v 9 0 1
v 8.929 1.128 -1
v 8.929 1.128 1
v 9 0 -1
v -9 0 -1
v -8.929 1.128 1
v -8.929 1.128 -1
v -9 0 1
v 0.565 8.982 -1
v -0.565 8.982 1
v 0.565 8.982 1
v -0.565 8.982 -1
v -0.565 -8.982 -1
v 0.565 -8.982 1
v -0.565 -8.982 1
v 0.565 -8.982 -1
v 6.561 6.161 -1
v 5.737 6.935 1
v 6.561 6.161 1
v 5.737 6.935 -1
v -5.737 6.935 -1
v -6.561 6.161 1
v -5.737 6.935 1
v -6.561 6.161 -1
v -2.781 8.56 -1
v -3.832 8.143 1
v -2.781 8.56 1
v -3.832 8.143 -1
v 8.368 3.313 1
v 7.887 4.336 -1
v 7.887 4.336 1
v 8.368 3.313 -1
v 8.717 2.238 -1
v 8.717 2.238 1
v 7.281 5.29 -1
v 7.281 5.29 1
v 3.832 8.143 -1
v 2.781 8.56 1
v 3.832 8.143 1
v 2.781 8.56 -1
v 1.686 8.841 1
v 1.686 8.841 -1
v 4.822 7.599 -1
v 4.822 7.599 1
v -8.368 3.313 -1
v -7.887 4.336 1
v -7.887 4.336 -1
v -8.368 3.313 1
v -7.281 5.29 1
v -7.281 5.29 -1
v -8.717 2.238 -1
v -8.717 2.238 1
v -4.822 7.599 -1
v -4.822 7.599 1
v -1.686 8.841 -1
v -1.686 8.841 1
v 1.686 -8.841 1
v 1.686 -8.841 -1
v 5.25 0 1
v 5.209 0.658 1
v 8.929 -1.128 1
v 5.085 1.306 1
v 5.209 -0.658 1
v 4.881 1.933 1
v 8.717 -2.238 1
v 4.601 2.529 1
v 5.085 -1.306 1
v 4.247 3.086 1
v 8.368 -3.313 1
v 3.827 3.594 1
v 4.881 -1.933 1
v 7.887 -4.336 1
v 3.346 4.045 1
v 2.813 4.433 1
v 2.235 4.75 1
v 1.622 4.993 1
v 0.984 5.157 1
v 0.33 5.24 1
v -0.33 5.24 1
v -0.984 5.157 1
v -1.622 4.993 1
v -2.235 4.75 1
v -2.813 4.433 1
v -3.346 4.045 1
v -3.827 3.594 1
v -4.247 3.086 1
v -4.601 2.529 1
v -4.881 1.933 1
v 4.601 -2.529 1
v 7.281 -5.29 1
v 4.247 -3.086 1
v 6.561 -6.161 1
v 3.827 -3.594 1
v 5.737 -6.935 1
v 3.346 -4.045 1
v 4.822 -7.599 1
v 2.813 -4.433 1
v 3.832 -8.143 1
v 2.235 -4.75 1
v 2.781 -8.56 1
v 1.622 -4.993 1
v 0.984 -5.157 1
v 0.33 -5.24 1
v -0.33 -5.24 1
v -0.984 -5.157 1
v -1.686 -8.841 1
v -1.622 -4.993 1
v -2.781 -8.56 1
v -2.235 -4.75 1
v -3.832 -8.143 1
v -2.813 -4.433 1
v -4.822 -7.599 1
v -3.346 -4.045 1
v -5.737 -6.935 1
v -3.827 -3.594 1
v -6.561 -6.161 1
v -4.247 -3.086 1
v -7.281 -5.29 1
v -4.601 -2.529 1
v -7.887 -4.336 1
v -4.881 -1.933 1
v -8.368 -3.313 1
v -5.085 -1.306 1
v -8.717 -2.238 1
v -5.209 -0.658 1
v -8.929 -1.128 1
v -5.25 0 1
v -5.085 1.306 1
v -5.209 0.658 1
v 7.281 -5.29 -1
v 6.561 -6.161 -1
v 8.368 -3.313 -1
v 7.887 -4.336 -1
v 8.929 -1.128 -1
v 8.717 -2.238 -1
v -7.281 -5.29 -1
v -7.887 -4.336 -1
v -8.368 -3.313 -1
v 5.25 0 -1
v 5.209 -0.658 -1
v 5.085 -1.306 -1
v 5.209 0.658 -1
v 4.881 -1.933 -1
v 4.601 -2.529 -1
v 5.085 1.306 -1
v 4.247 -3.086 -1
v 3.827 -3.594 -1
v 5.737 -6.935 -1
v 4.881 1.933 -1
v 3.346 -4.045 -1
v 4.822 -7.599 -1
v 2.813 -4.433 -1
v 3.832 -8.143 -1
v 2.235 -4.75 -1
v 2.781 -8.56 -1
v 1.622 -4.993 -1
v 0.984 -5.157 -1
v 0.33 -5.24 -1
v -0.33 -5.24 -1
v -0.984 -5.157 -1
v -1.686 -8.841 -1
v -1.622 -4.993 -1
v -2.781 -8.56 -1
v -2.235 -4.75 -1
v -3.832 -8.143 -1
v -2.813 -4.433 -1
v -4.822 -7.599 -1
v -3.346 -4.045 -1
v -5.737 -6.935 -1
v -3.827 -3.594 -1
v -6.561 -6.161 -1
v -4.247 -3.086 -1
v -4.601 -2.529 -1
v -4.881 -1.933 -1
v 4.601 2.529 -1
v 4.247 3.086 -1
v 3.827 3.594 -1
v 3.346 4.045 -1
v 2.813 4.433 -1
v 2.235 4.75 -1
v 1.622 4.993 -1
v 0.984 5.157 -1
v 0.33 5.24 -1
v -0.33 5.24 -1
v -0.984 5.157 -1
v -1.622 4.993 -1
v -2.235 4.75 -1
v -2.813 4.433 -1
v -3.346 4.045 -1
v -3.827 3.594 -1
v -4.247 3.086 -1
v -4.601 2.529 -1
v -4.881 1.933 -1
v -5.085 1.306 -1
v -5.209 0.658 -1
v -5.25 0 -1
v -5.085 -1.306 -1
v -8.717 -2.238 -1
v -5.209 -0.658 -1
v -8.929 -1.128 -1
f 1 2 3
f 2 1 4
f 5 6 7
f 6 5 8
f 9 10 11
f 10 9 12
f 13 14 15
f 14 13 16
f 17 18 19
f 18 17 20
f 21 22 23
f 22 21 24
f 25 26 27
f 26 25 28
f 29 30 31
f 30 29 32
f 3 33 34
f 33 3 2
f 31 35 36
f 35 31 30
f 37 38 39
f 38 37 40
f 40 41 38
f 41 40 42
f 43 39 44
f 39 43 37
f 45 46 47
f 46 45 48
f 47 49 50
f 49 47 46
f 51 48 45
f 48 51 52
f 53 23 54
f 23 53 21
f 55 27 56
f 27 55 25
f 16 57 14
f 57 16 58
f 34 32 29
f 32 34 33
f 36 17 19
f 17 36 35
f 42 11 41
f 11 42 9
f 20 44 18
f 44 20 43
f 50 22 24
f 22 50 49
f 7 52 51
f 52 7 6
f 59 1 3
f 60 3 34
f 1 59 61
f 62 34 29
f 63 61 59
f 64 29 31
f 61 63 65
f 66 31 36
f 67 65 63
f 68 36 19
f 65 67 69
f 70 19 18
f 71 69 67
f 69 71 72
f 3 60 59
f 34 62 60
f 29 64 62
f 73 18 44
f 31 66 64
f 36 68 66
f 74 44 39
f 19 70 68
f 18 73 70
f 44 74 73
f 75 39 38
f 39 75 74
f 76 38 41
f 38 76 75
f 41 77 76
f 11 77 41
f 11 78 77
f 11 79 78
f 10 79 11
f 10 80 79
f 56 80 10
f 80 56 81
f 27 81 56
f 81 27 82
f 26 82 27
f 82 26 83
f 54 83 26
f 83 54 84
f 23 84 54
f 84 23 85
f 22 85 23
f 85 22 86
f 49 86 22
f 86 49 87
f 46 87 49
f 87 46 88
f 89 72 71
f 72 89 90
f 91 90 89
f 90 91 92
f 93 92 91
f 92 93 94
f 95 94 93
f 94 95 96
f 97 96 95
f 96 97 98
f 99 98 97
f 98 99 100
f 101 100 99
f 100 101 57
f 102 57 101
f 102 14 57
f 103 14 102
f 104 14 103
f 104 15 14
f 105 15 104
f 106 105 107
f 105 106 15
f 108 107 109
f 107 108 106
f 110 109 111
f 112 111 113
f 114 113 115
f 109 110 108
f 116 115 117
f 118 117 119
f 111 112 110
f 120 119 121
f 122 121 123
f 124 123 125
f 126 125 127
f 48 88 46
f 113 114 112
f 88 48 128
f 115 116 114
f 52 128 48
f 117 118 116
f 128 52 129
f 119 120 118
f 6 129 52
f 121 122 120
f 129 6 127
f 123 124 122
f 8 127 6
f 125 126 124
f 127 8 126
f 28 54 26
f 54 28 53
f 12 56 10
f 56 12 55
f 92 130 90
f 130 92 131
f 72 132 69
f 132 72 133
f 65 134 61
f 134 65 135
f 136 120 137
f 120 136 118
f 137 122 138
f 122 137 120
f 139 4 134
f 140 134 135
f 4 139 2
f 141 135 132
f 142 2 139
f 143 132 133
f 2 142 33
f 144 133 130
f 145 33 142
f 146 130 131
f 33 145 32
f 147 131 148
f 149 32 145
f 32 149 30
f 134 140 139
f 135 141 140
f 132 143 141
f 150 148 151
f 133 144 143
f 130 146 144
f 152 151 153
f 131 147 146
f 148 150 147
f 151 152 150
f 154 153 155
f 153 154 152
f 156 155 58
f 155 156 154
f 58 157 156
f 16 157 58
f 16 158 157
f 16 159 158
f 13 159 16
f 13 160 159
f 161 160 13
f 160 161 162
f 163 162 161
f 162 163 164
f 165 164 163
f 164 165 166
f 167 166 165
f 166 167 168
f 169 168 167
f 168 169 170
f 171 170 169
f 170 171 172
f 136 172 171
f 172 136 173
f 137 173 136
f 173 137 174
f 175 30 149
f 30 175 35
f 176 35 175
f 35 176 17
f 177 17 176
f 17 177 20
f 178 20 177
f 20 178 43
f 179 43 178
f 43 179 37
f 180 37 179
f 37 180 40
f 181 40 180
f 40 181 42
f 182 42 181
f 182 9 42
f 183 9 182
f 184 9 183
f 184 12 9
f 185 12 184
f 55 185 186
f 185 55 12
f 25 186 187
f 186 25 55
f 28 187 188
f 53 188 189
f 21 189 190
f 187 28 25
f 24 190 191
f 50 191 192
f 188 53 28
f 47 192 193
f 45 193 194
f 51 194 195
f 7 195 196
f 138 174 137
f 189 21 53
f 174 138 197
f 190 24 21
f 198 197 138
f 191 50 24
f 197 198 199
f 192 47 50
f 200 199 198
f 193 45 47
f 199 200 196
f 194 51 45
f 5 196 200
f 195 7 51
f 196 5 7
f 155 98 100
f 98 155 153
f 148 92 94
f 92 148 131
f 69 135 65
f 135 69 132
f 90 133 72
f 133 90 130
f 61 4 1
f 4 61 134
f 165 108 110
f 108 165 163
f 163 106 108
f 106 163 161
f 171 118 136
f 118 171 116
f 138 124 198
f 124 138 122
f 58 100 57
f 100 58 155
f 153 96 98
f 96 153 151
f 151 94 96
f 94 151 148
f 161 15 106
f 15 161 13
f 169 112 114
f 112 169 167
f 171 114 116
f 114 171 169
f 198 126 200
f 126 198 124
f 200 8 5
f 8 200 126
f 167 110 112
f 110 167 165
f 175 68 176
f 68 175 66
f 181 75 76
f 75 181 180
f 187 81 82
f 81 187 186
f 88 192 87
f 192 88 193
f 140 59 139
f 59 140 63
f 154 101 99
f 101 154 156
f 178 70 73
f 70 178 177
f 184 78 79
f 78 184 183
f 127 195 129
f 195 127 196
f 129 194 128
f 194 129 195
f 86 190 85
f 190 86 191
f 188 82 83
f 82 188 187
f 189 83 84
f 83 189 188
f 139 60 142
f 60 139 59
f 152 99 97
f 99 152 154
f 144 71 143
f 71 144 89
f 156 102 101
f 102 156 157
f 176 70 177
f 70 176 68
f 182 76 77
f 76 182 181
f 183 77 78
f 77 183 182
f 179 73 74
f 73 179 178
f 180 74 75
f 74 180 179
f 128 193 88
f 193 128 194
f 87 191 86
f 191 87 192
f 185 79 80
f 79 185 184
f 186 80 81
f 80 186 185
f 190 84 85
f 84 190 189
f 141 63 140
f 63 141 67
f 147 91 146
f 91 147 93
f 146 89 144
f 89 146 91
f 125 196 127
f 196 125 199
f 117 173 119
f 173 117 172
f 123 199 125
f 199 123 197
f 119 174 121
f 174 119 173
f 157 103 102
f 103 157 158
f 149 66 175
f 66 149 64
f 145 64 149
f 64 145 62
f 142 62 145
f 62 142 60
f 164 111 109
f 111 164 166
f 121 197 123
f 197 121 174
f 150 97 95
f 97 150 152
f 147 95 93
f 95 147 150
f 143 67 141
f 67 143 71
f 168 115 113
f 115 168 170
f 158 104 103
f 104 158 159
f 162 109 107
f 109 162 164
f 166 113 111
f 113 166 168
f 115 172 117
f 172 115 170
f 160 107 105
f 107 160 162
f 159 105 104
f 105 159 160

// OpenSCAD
$fn = 50;


difference() {
	union() {
		translate(v = [0, 0, -1.0000000000]) {
			cylinder(h = 2, r = 9.0000000000);
		}
	}
	union() {
		translate(v = [0, 0, -100.0000000000]) {
			cylinder(h = 200, r = 5.2500000000);
		}
	}
}
